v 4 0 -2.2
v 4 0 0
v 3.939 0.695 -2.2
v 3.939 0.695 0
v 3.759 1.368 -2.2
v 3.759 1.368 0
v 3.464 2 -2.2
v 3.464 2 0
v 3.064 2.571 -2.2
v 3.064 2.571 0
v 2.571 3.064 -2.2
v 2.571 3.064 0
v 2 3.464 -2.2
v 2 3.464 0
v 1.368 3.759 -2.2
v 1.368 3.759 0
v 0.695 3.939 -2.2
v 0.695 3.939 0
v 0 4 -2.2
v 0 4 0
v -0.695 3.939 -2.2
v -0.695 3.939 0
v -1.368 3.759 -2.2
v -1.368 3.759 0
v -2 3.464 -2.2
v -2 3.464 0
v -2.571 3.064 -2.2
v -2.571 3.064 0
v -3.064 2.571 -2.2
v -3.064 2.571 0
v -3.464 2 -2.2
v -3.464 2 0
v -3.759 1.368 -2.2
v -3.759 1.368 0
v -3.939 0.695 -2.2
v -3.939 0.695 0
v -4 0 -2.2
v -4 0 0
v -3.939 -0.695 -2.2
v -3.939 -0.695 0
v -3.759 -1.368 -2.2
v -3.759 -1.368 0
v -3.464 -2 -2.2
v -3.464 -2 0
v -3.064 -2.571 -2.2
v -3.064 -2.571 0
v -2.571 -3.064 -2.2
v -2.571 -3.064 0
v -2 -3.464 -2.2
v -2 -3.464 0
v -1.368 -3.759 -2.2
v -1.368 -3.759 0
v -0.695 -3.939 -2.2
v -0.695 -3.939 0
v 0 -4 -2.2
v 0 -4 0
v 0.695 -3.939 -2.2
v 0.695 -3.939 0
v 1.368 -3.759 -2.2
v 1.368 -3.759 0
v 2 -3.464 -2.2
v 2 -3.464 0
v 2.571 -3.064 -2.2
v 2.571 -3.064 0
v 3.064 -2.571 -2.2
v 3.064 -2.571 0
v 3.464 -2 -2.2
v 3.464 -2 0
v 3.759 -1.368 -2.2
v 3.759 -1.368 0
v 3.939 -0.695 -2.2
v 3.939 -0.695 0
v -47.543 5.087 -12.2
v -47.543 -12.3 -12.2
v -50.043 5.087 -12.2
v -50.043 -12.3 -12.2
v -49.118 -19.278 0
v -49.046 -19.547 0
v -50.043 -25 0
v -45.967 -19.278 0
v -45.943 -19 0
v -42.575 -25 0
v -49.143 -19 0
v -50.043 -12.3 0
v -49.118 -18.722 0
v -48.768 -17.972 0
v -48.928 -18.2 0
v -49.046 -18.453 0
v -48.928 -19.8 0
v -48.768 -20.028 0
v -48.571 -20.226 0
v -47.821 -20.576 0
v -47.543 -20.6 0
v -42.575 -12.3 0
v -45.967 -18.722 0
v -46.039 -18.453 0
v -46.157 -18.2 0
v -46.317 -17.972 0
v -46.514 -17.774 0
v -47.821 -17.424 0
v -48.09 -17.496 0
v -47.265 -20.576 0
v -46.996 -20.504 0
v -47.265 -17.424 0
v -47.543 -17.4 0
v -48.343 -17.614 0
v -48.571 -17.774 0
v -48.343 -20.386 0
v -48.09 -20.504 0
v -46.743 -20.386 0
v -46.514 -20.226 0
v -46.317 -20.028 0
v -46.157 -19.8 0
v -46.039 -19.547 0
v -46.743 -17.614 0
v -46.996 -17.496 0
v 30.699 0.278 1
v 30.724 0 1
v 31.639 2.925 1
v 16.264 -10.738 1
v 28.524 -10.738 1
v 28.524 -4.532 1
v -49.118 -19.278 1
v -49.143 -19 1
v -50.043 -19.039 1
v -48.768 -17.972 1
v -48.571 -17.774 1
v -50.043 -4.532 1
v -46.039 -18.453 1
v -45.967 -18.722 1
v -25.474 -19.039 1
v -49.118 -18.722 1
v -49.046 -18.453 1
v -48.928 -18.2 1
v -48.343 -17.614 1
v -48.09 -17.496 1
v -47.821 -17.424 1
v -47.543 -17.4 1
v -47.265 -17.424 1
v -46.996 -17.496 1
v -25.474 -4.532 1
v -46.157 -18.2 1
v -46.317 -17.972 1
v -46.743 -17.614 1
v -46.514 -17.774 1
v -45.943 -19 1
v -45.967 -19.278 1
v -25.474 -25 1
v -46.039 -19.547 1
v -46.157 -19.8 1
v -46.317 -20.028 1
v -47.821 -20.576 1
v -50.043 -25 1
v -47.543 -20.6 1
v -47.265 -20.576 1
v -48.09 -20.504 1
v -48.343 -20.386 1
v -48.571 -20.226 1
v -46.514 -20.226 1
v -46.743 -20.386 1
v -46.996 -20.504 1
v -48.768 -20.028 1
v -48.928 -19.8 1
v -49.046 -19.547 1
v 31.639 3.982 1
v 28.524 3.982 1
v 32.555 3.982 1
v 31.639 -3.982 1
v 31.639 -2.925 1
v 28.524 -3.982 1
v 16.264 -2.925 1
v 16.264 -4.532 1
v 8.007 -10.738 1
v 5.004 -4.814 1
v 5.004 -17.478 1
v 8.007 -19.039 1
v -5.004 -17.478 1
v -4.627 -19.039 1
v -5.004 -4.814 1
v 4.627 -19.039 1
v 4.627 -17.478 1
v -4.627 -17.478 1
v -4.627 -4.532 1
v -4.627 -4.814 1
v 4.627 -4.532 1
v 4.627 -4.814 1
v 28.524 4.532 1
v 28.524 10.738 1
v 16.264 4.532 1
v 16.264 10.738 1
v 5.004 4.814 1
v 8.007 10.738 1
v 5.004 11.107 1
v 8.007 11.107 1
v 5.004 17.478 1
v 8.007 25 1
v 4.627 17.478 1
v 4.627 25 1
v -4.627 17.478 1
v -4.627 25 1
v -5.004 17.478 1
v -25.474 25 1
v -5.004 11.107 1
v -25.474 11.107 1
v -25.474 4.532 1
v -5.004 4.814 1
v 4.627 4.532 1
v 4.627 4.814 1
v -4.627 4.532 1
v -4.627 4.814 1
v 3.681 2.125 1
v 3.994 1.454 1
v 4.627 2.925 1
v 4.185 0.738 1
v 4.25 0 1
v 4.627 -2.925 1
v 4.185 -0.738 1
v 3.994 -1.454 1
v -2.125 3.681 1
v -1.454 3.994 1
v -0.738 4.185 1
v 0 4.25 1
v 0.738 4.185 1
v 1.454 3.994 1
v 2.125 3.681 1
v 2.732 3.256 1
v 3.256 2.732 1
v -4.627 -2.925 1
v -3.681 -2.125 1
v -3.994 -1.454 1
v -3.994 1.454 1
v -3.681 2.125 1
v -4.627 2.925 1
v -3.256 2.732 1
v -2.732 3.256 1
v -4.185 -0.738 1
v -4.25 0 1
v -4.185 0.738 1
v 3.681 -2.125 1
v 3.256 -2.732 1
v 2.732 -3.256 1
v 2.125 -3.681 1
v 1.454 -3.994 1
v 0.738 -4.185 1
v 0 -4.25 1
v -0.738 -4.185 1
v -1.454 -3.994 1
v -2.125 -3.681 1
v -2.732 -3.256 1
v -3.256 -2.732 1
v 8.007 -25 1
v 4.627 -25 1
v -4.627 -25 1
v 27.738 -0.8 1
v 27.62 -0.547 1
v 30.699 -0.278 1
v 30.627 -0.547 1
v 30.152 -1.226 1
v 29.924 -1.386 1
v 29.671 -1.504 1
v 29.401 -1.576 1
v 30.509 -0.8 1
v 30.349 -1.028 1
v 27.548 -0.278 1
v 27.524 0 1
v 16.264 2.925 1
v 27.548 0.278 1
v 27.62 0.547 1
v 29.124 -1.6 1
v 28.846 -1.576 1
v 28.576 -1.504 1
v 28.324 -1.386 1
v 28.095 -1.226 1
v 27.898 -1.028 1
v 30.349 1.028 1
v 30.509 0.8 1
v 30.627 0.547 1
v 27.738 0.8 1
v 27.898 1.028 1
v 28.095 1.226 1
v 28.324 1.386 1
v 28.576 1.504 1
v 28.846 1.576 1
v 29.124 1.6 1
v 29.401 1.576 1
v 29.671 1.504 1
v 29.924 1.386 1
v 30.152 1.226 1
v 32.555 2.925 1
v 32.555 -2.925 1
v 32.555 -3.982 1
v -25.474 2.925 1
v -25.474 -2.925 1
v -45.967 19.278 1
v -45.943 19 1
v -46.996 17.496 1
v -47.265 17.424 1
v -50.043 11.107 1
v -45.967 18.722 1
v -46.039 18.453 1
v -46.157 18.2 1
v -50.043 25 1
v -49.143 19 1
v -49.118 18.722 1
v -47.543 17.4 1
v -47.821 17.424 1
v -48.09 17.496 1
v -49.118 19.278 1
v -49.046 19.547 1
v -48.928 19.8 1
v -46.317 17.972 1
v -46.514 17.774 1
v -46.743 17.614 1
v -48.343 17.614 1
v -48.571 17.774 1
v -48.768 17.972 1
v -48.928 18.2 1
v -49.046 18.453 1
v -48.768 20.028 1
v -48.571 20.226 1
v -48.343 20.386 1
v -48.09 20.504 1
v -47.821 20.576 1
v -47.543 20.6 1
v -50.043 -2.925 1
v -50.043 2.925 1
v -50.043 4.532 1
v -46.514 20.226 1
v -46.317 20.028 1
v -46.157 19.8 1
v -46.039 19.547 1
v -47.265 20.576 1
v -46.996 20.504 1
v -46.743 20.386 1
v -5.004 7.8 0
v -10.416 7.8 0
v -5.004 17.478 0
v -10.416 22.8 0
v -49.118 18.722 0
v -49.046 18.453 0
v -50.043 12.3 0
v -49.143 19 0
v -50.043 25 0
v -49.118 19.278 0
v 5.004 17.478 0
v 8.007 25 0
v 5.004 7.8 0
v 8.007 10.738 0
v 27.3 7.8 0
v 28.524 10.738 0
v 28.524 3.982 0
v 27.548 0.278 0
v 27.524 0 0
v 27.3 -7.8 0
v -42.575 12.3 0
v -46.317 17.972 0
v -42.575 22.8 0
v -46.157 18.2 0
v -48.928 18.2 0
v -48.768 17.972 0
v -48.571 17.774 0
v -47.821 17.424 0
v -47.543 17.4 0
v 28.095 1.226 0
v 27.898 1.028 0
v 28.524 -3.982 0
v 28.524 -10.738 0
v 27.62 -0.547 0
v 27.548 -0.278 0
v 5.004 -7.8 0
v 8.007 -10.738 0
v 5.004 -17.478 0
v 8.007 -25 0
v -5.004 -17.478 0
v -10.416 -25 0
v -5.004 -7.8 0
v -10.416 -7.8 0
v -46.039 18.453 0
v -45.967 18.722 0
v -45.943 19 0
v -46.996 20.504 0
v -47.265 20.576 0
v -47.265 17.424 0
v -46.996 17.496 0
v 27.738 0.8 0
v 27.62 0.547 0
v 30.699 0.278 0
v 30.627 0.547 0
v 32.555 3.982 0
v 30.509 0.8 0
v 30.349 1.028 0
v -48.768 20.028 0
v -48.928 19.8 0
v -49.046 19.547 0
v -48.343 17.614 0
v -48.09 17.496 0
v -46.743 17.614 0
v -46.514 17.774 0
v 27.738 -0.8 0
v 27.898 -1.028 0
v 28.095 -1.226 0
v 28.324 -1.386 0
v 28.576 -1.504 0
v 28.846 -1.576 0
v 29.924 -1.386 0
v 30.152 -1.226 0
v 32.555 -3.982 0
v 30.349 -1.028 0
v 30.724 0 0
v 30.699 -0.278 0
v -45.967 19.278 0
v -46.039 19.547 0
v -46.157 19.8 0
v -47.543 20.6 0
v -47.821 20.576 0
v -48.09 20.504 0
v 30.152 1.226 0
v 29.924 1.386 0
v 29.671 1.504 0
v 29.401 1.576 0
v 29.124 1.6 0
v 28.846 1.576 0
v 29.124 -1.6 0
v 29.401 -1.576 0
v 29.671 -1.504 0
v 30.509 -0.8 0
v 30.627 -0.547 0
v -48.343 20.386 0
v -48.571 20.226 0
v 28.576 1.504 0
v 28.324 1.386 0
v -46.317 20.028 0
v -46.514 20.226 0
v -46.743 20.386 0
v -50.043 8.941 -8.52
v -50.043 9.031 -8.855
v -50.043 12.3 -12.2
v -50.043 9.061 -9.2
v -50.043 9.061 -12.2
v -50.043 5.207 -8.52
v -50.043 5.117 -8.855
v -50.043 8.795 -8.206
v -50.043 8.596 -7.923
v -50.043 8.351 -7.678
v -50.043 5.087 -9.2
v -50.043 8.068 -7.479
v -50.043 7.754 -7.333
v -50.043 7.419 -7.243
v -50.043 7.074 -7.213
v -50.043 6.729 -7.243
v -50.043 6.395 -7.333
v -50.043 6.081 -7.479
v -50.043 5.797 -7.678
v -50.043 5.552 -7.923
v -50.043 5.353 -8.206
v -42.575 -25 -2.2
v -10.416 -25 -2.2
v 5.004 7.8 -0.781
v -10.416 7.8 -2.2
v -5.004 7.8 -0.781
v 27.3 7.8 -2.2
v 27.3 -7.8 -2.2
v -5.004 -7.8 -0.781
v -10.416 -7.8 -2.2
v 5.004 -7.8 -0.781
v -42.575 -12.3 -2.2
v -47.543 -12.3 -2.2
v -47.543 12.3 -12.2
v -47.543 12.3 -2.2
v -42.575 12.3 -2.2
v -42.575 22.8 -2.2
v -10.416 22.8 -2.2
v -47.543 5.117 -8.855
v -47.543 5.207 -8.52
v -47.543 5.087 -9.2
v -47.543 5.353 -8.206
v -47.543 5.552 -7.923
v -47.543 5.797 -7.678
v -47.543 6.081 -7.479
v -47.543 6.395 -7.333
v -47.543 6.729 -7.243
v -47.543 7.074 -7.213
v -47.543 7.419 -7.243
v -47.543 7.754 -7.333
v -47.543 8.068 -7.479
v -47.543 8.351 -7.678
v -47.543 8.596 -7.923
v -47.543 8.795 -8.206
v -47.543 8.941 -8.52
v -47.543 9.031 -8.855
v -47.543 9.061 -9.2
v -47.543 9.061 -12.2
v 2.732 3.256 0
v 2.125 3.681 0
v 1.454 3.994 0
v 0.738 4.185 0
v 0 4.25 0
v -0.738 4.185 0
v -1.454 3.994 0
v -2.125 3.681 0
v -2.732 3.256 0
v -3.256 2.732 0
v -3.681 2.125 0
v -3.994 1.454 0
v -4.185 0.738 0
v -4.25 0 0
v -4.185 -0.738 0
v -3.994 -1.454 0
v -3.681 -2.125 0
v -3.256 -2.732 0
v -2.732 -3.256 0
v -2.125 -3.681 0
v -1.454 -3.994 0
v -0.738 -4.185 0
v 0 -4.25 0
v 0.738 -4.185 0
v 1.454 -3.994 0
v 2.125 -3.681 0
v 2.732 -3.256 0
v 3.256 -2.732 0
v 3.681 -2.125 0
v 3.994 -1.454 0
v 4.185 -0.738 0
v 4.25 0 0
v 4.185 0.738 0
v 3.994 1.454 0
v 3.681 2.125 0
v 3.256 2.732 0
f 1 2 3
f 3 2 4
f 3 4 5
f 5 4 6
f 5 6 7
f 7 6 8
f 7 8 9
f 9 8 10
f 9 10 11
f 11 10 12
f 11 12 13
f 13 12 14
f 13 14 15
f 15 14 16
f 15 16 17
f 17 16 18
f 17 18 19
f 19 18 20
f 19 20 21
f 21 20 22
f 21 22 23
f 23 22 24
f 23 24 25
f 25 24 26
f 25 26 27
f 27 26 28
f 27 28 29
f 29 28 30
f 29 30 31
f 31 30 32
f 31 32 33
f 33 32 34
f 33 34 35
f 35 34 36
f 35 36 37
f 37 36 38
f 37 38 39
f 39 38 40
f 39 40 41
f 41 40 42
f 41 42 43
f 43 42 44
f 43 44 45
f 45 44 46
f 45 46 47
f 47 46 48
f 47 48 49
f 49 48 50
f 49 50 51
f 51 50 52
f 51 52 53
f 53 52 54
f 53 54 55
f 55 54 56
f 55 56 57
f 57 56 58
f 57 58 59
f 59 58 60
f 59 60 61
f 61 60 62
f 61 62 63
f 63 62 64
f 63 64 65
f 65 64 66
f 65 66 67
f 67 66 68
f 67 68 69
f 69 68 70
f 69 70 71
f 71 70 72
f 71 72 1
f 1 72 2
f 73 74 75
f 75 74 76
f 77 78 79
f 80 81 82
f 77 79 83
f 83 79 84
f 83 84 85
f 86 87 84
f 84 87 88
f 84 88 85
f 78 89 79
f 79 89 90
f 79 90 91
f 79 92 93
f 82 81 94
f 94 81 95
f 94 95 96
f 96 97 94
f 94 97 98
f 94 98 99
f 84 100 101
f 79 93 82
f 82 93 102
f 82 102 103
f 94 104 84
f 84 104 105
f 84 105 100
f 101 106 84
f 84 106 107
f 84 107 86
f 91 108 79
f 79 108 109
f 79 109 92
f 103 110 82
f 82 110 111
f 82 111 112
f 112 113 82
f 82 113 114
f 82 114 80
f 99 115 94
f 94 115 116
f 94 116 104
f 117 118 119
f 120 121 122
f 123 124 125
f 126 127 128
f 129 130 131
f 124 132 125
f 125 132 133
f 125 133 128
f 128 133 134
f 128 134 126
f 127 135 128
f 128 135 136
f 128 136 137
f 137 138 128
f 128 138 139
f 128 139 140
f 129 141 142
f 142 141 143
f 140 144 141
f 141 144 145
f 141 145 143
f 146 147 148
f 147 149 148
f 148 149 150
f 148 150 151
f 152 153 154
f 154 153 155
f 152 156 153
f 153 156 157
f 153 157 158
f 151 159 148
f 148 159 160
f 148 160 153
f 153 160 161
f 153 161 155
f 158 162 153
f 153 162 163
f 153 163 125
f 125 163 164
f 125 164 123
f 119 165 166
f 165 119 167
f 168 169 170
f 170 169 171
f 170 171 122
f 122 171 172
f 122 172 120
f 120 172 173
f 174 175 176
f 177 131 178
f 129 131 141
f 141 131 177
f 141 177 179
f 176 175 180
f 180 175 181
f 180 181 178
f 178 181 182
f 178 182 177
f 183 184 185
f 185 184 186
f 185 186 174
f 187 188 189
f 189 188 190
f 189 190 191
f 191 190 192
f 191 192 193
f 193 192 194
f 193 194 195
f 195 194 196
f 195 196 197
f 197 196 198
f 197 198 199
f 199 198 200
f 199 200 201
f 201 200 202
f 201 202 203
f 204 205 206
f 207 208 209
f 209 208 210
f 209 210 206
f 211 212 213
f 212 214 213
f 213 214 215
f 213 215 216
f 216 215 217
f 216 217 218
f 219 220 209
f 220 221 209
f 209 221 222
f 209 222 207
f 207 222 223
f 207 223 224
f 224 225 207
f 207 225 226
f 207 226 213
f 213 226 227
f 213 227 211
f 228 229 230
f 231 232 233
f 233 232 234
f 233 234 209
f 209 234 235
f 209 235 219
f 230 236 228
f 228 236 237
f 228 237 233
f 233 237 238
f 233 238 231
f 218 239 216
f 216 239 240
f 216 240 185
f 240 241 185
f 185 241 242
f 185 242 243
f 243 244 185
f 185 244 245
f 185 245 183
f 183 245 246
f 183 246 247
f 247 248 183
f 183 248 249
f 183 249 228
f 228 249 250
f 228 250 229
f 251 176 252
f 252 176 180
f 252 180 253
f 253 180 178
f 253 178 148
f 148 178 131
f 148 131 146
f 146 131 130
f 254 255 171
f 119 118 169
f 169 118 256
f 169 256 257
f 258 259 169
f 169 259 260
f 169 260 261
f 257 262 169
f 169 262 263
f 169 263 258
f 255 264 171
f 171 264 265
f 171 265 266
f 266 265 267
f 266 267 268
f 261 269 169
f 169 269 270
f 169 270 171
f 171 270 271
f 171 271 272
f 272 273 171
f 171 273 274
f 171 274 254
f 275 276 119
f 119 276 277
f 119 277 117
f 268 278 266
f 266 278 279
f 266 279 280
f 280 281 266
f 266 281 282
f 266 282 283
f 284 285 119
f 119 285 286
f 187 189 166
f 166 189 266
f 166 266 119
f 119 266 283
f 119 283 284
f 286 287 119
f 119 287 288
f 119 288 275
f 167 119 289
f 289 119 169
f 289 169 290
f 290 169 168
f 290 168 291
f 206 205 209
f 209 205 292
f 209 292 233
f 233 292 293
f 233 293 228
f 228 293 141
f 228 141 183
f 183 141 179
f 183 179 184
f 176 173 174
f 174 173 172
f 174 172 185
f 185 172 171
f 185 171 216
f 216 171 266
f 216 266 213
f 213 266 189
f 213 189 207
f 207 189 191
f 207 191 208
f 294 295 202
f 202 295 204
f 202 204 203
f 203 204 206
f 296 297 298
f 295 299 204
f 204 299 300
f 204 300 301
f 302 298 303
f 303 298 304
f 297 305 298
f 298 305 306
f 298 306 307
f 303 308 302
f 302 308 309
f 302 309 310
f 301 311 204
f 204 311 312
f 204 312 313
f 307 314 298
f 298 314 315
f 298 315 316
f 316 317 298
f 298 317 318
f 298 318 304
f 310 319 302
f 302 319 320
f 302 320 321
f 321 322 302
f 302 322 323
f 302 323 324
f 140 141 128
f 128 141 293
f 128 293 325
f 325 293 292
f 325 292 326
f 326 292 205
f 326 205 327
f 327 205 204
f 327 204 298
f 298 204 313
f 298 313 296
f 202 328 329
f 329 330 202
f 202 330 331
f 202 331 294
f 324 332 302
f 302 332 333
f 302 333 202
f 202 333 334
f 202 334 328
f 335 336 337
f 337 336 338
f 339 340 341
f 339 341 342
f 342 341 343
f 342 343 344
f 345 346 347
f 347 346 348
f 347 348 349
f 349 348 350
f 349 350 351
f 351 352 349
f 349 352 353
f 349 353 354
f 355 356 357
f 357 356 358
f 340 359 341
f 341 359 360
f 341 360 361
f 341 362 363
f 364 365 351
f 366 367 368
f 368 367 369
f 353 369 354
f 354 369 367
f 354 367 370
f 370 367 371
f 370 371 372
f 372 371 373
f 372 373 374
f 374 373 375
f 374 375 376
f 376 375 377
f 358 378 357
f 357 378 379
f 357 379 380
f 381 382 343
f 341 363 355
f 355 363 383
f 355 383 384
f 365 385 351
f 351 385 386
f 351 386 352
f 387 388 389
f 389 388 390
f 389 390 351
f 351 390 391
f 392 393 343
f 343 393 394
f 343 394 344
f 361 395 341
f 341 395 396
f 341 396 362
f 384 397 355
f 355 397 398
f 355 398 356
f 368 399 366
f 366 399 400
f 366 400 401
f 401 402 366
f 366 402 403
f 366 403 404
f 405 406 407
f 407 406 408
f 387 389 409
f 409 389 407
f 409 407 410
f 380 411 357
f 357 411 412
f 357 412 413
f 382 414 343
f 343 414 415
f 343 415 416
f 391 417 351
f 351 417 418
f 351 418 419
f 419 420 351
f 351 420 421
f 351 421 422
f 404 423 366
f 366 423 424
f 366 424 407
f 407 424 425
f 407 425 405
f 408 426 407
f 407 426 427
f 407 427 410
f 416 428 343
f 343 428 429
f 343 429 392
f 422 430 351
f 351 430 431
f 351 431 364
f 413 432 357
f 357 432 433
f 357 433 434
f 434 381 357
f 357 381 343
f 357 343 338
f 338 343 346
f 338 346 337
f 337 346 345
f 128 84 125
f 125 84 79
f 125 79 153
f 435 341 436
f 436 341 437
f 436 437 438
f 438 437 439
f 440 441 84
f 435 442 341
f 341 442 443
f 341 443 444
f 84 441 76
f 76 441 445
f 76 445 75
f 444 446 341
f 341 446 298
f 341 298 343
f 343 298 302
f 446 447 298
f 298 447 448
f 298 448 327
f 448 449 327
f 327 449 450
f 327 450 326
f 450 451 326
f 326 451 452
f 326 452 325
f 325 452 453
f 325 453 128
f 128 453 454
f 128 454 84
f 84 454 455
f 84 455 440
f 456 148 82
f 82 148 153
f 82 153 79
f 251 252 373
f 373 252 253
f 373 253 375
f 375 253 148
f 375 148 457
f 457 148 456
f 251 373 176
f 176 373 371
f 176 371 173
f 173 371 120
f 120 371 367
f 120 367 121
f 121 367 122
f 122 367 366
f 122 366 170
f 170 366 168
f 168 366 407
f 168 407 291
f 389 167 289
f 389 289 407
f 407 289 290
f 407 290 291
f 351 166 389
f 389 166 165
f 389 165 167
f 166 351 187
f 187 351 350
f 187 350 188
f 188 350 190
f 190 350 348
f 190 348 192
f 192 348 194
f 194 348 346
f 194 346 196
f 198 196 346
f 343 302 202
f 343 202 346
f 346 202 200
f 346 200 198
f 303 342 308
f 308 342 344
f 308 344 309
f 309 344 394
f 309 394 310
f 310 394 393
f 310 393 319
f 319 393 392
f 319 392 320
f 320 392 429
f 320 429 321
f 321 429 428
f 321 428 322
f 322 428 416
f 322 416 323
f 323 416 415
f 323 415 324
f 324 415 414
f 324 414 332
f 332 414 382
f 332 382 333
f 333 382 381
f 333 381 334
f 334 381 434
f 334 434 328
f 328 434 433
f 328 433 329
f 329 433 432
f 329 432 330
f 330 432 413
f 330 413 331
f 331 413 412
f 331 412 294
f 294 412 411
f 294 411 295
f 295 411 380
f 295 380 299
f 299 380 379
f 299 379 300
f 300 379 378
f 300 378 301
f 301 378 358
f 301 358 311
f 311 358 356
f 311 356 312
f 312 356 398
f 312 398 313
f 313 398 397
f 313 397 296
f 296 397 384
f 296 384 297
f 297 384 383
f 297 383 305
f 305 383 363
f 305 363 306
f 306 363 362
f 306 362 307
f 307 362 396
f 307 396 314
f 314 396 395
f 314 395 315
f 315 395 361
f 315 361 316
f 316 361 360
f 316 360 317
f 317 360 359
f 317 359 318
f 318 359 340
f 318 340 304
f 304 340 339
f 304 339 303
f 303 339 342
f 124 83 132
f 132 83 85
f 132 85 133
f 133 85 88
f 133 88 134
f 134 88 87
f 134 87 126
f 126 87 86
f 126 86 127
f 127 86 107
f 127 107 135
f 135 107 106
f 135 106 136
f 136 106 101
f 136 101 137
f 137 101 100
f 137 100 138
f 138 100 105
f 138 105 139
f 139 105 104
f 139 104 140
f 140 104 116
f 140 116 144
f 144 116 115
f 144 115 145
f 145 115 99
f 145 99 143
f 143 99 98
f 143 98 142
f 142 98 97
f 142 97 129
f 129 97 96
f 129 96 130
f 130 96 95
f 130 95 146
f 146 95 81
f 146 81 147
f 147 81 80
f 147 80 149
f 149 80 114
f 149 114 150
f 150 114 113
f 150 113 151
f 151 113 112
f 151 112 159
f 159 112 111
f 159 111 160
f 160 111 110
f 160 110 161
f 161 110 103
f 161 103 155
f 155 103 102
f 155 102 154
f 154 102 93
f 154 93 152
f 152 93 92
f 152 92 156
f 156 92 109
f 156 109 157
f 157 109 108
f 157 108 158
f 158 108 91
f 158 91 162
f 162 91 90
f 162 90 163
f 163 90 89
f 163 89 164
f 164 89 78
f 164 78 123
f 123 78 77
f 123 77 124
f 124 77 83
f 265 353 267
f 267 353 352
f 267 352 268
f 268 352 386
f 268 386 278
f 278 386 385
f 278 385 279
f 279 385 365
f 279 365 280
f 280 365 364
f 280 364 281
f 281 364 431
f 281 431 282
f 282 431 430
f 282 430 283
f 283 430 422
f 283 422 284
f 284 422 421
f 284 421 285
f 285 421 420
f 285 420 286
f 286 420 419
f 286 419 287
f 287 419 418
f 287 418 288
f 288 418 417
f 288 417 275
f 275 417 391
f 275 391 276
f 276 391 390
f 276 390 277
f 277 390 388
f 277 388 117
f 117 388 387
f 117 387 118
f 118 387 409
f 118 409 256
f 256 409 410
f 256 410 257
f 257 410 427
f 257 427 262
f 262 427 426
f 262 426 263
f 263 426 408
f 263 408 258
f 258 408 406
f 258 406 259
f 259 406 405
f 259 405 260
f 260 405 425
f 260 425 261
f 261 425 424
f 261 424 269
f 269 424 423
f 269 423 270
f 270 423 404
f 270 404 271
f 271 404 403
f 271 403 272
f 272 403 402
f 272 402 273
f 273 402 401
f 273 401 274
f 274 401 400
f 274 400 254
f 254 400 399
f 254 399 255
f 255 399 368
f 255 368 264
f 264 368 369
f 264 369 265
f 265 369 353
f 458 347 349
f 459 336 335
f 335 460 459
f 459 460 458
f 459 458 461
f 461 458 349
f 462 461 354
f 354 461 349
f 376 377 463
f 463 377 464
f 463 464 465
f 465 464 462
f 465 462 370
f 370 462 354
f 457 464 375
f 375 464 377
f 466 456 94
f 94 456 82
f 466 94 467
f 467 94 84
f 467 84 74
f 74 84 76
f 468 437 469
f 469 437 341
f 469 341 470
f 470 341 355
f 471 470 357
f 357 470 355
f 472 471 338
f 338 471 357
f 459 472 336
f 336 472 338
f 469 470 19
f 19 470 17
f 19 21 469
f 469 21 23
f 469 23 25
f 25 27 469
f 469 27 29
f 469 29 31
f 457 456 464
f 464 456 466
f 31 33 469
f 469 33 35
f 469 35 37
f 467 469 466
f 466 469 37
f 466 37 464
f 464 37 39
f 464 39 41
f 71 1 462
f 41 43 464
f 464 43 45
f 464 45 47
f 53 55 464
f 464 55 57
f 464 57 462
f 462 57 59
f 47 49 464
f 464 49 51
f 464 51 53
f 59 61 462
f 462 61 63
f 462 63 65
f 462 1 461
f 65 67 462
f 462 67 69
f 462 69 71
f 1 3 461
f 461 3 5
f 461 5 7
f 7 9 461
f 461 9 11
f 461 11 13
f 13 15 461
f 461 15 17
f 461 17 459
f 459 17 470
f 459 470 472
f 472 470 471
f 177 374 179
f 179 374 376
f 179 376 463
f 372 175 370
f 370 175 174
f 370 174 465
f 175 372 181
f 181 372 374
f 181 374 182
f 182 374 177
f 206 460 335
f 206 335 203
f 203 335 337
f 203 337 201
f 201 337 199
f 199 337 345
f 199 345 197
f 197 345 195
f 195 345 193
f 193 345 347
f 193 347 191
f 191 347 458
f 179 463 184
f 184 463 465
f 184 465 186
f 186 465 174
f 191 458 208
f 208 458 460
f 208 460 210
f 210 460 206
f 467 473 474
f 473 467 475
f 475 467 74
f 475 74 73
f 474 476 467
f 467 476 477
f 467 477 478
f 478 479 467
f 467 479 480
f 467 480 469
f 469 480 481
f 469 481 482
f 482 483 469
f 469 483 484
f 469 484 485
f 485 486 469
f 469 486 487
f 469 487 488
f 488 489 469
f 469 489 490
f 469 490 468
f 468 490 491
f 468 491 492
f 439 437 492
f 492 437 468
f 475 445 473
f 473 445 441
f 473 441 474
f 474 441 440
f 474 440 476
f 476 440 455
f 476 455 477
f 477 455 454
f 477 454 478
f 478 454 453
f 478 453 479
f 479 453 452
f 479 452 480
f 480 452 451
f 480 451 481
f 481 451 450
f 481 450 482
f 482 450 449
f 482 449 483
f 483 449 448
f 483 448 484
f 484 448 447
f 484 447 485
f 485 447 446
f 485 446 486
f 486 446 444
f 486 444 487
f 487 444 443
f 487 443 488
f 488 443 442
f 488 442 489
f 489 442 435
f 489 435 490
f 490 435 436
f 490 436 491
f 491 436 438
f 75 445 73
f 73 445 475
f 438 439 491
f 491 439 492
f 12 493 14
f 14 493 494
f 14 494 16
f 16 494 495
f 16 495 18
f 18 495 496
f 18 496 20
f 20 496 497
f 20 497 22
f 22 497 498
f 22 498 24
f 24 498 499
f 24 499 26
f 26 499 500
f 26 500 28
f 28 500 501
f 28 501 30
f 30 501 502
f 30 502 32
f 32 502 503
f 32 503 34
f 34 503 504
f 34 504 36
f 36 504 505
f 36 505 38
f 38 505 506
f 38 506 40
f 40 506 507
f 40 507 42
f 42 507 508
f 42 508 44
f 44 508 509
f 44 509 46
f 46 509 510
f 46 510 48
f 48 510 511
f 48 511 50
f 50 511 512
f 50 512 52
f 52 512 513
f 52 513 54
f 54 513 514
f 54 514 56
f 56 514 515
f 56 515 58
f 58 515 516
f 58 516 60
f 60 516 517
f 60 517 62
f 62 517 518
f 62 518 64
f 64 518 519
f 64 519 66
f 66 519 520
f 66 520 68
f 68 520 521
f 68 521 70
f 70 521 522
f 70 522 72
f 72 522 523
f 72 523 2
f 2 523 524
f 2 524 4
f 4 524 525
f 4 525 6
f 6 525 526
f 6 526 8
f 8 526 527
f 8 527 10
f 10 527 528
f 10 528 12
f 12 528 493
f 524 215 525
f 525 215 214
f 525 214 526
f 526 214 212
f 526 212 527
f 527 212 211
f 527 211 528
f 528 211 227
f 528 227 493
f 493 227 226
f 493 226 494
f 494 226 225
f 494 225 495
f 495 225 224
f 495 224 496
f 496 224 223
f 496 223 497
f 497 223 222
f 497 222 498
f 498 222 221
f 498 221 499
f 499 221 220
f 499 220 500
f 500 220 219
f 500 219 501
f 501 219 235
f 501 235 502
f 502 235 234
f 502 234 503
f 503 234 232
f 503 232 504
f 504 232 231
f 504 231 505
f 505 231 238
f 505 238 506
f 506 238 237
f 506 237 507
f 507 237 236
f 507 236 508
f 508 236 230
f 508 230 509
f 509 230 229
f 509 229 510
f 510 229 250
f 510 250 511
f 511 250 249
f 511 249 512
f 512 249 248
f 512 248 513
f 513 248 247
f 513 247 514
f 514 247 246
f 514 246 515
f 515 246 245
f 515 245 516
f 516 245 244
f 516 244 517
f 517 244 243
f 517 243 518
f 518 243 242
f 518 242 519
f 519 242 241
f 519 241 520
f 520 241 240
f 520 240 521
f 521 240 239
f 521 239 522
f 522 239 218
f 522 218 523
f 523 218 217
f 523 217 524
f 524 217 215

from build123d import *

# Parameters (mm, degrees)
SKETCH4_R           = 1.6
BOSS_EXTRUDE2_DEPTH = 1
BOSS_EXTRUDE3_DEPTH = 2.2
SKETCH6_R           = 4
SKETCH6_W           = 10.008556046
SKETCH6_H           = 9.470821567
CUT_EXTRUDE1_DEPTH  = 57.031418446
CUT_EXTRUDE2_DEPTH  = 10.008556046
SKETCH8_W           = 2.5
SKETCH8_H           = 24.6
BOSS_EXTRUDE4_DEPTH = 10
CUT_EXTRUDE3_REACH  = 89.157
SKETCH10_R          = 4.25
CUT_EXTRUDE4_DEPTH  = 1


with BuildPart() as part:
    # Sketch4 → Boss-Extrude2 (new body)
    with BuildSketch(Plane.XY):
        Polygon((-50.042780229, 25), (8.006844837, 25), (8.006844837, 10.737807635), (28.52438473, 10.737807635), (28.52438473, 3.982032304), (32.555371359, 3.982032304), (32.555371359, -3.982032304), (28.52438473, -3.982032304), (28.52438473, -10.737807635), (8.006844837, -10.737807635), (8.006844837, -25), (-50.042780229, -25), align=None)
        with Locations((-47.542780229, 19)):
            Circle(SKETCH4_R, mode=Mode.SUBTRACT)
        with Locations(Location((-47.542780229, -19, 0), (0, 0, 180))):
            Circle(SKETCH4_R, mode=Mode.SUBTRACT)
        with Locations((29.123529126, 0)):
            Circle(SKETCH4_R, mode=Mode.SUBTRACT)
    extrude(amount=BOSS_EXTRUDE2_DEPTH)

    # Sketch5 → Boss-Extrude3 (add)
    with BuildSketch(Plane(origin=(0, 0, 0), x_dir=(-1, 0, 0), z_dir=(0, 0, -1))):
        Polygon((10.130686795, 7.8), (-27.3, 7.8), (-27.3, -7.8), (10.130686795, -7.8), (10.416393564, -7.8), (10.416393564, -8), (10.416393564, -25), (42.575341492, -25), (42.575341492, -12.3), (50.042780229, -12.3), (50.042780229, 12.3), (42.575341492, 12.3), (42.575341492, 22.8), (10.416393564, 22.8), (10.416393564, 8), (10.416393564, 7.8), align=None)
    extrude(amount=BOSS_EXTRUDE3_DEPTH)

    # Sketch6 → Cut-Extrude1 (cut, through all)
    with BuildSketch(Plane.XY.offset(1)):
        Circle(SKETCH6_R)
        with Locations((0, -12.74225562)):
            Rectangle(SKETCH6_W, SKETCH6_H)
        with Locations((0, 12.74225562)):
            Rectangle(SKETCH6_W, SKETCH6_H)
    extrude(amount=-CUT_EXTRUDE1_DEPTH, mode=Mode.SUBTRACT)

    # Sketch7 → Cut-Extrude2 (cut)
    with BuildSketch(Plane(origin=(-5.004278023, 0, 0), x_dir=(0, 0, -1), z_dir=(1, 0, 0))):
        Polygon((0.904413332, -8.006844837), (-1, -4.814198104), (-1, -8.006844837), (0, -8.006844837), align=None)
    cut_extrude2 = extrude(amount=CUT_EXTRUDE2_DEPTH, mode=Mode.SUBTRACT)

    # Mirror1: Cut-Extrude2 across plane
    add(cut_extrude2.mirror(Plane.ZX), mode=Mode.SUBTRACT)

    # Sketch8 → Boss-Extrude4 (add)
    with BuildSketch(Plane(origin=(0, 0, -2.2), x_dir=(-1, 0, 0), z_dir=(0, 0, -1))):
        with Locations((48.792780229, 0)):
            Rectangle(SKETCH8_W, SKETCH8_H)
    extrude(amount=BOSS_EXTRUDE4_DEPTH)

    # Sketch9 → Cut-Extrude3 (cut, up to next)
    with BuildSketch(Plane.ZY.offset(50.042780229), mode=Mode.PRIVATE) as cut_extrude3_sk1:
        with BuildLine():
            Line((-9.2, 9.061272662), (-12.2, 9.061272662))
            Line((-12.2, 9.061272662), (-12.2, 5.087082771))
            Line((-12.2, 5.087082771), (-9.2, 5.087082771))
            ThreePointArc((-9.2, 5.087082771), (-7.212905055, 7.074177716), (-9.2, 9.061272662))
        make_face()
    cut_extrude3_tool1 = extrude(cut_extrude3_sk1.sketch, amount=-CUT_EXTRUDE3_REACH, mode=Mode.PRIVATE) & part.part
    add(cut_extrude3_tool1.solids().sort_by_distance((-50.04278, 7.074178, -9.898105))[0], mode=Mode.SUBTRACT)

    # Sketch10 → Cut-Extrude4 (cut)
    with BuildSketch(Plane.XY.offset(1)):
        Circle(SKETCH10_R)
    extrude(amount=-CUT_EXTRUDE4_DEPTH, mode=Mode.SUBTRACT)


solid = part.part
